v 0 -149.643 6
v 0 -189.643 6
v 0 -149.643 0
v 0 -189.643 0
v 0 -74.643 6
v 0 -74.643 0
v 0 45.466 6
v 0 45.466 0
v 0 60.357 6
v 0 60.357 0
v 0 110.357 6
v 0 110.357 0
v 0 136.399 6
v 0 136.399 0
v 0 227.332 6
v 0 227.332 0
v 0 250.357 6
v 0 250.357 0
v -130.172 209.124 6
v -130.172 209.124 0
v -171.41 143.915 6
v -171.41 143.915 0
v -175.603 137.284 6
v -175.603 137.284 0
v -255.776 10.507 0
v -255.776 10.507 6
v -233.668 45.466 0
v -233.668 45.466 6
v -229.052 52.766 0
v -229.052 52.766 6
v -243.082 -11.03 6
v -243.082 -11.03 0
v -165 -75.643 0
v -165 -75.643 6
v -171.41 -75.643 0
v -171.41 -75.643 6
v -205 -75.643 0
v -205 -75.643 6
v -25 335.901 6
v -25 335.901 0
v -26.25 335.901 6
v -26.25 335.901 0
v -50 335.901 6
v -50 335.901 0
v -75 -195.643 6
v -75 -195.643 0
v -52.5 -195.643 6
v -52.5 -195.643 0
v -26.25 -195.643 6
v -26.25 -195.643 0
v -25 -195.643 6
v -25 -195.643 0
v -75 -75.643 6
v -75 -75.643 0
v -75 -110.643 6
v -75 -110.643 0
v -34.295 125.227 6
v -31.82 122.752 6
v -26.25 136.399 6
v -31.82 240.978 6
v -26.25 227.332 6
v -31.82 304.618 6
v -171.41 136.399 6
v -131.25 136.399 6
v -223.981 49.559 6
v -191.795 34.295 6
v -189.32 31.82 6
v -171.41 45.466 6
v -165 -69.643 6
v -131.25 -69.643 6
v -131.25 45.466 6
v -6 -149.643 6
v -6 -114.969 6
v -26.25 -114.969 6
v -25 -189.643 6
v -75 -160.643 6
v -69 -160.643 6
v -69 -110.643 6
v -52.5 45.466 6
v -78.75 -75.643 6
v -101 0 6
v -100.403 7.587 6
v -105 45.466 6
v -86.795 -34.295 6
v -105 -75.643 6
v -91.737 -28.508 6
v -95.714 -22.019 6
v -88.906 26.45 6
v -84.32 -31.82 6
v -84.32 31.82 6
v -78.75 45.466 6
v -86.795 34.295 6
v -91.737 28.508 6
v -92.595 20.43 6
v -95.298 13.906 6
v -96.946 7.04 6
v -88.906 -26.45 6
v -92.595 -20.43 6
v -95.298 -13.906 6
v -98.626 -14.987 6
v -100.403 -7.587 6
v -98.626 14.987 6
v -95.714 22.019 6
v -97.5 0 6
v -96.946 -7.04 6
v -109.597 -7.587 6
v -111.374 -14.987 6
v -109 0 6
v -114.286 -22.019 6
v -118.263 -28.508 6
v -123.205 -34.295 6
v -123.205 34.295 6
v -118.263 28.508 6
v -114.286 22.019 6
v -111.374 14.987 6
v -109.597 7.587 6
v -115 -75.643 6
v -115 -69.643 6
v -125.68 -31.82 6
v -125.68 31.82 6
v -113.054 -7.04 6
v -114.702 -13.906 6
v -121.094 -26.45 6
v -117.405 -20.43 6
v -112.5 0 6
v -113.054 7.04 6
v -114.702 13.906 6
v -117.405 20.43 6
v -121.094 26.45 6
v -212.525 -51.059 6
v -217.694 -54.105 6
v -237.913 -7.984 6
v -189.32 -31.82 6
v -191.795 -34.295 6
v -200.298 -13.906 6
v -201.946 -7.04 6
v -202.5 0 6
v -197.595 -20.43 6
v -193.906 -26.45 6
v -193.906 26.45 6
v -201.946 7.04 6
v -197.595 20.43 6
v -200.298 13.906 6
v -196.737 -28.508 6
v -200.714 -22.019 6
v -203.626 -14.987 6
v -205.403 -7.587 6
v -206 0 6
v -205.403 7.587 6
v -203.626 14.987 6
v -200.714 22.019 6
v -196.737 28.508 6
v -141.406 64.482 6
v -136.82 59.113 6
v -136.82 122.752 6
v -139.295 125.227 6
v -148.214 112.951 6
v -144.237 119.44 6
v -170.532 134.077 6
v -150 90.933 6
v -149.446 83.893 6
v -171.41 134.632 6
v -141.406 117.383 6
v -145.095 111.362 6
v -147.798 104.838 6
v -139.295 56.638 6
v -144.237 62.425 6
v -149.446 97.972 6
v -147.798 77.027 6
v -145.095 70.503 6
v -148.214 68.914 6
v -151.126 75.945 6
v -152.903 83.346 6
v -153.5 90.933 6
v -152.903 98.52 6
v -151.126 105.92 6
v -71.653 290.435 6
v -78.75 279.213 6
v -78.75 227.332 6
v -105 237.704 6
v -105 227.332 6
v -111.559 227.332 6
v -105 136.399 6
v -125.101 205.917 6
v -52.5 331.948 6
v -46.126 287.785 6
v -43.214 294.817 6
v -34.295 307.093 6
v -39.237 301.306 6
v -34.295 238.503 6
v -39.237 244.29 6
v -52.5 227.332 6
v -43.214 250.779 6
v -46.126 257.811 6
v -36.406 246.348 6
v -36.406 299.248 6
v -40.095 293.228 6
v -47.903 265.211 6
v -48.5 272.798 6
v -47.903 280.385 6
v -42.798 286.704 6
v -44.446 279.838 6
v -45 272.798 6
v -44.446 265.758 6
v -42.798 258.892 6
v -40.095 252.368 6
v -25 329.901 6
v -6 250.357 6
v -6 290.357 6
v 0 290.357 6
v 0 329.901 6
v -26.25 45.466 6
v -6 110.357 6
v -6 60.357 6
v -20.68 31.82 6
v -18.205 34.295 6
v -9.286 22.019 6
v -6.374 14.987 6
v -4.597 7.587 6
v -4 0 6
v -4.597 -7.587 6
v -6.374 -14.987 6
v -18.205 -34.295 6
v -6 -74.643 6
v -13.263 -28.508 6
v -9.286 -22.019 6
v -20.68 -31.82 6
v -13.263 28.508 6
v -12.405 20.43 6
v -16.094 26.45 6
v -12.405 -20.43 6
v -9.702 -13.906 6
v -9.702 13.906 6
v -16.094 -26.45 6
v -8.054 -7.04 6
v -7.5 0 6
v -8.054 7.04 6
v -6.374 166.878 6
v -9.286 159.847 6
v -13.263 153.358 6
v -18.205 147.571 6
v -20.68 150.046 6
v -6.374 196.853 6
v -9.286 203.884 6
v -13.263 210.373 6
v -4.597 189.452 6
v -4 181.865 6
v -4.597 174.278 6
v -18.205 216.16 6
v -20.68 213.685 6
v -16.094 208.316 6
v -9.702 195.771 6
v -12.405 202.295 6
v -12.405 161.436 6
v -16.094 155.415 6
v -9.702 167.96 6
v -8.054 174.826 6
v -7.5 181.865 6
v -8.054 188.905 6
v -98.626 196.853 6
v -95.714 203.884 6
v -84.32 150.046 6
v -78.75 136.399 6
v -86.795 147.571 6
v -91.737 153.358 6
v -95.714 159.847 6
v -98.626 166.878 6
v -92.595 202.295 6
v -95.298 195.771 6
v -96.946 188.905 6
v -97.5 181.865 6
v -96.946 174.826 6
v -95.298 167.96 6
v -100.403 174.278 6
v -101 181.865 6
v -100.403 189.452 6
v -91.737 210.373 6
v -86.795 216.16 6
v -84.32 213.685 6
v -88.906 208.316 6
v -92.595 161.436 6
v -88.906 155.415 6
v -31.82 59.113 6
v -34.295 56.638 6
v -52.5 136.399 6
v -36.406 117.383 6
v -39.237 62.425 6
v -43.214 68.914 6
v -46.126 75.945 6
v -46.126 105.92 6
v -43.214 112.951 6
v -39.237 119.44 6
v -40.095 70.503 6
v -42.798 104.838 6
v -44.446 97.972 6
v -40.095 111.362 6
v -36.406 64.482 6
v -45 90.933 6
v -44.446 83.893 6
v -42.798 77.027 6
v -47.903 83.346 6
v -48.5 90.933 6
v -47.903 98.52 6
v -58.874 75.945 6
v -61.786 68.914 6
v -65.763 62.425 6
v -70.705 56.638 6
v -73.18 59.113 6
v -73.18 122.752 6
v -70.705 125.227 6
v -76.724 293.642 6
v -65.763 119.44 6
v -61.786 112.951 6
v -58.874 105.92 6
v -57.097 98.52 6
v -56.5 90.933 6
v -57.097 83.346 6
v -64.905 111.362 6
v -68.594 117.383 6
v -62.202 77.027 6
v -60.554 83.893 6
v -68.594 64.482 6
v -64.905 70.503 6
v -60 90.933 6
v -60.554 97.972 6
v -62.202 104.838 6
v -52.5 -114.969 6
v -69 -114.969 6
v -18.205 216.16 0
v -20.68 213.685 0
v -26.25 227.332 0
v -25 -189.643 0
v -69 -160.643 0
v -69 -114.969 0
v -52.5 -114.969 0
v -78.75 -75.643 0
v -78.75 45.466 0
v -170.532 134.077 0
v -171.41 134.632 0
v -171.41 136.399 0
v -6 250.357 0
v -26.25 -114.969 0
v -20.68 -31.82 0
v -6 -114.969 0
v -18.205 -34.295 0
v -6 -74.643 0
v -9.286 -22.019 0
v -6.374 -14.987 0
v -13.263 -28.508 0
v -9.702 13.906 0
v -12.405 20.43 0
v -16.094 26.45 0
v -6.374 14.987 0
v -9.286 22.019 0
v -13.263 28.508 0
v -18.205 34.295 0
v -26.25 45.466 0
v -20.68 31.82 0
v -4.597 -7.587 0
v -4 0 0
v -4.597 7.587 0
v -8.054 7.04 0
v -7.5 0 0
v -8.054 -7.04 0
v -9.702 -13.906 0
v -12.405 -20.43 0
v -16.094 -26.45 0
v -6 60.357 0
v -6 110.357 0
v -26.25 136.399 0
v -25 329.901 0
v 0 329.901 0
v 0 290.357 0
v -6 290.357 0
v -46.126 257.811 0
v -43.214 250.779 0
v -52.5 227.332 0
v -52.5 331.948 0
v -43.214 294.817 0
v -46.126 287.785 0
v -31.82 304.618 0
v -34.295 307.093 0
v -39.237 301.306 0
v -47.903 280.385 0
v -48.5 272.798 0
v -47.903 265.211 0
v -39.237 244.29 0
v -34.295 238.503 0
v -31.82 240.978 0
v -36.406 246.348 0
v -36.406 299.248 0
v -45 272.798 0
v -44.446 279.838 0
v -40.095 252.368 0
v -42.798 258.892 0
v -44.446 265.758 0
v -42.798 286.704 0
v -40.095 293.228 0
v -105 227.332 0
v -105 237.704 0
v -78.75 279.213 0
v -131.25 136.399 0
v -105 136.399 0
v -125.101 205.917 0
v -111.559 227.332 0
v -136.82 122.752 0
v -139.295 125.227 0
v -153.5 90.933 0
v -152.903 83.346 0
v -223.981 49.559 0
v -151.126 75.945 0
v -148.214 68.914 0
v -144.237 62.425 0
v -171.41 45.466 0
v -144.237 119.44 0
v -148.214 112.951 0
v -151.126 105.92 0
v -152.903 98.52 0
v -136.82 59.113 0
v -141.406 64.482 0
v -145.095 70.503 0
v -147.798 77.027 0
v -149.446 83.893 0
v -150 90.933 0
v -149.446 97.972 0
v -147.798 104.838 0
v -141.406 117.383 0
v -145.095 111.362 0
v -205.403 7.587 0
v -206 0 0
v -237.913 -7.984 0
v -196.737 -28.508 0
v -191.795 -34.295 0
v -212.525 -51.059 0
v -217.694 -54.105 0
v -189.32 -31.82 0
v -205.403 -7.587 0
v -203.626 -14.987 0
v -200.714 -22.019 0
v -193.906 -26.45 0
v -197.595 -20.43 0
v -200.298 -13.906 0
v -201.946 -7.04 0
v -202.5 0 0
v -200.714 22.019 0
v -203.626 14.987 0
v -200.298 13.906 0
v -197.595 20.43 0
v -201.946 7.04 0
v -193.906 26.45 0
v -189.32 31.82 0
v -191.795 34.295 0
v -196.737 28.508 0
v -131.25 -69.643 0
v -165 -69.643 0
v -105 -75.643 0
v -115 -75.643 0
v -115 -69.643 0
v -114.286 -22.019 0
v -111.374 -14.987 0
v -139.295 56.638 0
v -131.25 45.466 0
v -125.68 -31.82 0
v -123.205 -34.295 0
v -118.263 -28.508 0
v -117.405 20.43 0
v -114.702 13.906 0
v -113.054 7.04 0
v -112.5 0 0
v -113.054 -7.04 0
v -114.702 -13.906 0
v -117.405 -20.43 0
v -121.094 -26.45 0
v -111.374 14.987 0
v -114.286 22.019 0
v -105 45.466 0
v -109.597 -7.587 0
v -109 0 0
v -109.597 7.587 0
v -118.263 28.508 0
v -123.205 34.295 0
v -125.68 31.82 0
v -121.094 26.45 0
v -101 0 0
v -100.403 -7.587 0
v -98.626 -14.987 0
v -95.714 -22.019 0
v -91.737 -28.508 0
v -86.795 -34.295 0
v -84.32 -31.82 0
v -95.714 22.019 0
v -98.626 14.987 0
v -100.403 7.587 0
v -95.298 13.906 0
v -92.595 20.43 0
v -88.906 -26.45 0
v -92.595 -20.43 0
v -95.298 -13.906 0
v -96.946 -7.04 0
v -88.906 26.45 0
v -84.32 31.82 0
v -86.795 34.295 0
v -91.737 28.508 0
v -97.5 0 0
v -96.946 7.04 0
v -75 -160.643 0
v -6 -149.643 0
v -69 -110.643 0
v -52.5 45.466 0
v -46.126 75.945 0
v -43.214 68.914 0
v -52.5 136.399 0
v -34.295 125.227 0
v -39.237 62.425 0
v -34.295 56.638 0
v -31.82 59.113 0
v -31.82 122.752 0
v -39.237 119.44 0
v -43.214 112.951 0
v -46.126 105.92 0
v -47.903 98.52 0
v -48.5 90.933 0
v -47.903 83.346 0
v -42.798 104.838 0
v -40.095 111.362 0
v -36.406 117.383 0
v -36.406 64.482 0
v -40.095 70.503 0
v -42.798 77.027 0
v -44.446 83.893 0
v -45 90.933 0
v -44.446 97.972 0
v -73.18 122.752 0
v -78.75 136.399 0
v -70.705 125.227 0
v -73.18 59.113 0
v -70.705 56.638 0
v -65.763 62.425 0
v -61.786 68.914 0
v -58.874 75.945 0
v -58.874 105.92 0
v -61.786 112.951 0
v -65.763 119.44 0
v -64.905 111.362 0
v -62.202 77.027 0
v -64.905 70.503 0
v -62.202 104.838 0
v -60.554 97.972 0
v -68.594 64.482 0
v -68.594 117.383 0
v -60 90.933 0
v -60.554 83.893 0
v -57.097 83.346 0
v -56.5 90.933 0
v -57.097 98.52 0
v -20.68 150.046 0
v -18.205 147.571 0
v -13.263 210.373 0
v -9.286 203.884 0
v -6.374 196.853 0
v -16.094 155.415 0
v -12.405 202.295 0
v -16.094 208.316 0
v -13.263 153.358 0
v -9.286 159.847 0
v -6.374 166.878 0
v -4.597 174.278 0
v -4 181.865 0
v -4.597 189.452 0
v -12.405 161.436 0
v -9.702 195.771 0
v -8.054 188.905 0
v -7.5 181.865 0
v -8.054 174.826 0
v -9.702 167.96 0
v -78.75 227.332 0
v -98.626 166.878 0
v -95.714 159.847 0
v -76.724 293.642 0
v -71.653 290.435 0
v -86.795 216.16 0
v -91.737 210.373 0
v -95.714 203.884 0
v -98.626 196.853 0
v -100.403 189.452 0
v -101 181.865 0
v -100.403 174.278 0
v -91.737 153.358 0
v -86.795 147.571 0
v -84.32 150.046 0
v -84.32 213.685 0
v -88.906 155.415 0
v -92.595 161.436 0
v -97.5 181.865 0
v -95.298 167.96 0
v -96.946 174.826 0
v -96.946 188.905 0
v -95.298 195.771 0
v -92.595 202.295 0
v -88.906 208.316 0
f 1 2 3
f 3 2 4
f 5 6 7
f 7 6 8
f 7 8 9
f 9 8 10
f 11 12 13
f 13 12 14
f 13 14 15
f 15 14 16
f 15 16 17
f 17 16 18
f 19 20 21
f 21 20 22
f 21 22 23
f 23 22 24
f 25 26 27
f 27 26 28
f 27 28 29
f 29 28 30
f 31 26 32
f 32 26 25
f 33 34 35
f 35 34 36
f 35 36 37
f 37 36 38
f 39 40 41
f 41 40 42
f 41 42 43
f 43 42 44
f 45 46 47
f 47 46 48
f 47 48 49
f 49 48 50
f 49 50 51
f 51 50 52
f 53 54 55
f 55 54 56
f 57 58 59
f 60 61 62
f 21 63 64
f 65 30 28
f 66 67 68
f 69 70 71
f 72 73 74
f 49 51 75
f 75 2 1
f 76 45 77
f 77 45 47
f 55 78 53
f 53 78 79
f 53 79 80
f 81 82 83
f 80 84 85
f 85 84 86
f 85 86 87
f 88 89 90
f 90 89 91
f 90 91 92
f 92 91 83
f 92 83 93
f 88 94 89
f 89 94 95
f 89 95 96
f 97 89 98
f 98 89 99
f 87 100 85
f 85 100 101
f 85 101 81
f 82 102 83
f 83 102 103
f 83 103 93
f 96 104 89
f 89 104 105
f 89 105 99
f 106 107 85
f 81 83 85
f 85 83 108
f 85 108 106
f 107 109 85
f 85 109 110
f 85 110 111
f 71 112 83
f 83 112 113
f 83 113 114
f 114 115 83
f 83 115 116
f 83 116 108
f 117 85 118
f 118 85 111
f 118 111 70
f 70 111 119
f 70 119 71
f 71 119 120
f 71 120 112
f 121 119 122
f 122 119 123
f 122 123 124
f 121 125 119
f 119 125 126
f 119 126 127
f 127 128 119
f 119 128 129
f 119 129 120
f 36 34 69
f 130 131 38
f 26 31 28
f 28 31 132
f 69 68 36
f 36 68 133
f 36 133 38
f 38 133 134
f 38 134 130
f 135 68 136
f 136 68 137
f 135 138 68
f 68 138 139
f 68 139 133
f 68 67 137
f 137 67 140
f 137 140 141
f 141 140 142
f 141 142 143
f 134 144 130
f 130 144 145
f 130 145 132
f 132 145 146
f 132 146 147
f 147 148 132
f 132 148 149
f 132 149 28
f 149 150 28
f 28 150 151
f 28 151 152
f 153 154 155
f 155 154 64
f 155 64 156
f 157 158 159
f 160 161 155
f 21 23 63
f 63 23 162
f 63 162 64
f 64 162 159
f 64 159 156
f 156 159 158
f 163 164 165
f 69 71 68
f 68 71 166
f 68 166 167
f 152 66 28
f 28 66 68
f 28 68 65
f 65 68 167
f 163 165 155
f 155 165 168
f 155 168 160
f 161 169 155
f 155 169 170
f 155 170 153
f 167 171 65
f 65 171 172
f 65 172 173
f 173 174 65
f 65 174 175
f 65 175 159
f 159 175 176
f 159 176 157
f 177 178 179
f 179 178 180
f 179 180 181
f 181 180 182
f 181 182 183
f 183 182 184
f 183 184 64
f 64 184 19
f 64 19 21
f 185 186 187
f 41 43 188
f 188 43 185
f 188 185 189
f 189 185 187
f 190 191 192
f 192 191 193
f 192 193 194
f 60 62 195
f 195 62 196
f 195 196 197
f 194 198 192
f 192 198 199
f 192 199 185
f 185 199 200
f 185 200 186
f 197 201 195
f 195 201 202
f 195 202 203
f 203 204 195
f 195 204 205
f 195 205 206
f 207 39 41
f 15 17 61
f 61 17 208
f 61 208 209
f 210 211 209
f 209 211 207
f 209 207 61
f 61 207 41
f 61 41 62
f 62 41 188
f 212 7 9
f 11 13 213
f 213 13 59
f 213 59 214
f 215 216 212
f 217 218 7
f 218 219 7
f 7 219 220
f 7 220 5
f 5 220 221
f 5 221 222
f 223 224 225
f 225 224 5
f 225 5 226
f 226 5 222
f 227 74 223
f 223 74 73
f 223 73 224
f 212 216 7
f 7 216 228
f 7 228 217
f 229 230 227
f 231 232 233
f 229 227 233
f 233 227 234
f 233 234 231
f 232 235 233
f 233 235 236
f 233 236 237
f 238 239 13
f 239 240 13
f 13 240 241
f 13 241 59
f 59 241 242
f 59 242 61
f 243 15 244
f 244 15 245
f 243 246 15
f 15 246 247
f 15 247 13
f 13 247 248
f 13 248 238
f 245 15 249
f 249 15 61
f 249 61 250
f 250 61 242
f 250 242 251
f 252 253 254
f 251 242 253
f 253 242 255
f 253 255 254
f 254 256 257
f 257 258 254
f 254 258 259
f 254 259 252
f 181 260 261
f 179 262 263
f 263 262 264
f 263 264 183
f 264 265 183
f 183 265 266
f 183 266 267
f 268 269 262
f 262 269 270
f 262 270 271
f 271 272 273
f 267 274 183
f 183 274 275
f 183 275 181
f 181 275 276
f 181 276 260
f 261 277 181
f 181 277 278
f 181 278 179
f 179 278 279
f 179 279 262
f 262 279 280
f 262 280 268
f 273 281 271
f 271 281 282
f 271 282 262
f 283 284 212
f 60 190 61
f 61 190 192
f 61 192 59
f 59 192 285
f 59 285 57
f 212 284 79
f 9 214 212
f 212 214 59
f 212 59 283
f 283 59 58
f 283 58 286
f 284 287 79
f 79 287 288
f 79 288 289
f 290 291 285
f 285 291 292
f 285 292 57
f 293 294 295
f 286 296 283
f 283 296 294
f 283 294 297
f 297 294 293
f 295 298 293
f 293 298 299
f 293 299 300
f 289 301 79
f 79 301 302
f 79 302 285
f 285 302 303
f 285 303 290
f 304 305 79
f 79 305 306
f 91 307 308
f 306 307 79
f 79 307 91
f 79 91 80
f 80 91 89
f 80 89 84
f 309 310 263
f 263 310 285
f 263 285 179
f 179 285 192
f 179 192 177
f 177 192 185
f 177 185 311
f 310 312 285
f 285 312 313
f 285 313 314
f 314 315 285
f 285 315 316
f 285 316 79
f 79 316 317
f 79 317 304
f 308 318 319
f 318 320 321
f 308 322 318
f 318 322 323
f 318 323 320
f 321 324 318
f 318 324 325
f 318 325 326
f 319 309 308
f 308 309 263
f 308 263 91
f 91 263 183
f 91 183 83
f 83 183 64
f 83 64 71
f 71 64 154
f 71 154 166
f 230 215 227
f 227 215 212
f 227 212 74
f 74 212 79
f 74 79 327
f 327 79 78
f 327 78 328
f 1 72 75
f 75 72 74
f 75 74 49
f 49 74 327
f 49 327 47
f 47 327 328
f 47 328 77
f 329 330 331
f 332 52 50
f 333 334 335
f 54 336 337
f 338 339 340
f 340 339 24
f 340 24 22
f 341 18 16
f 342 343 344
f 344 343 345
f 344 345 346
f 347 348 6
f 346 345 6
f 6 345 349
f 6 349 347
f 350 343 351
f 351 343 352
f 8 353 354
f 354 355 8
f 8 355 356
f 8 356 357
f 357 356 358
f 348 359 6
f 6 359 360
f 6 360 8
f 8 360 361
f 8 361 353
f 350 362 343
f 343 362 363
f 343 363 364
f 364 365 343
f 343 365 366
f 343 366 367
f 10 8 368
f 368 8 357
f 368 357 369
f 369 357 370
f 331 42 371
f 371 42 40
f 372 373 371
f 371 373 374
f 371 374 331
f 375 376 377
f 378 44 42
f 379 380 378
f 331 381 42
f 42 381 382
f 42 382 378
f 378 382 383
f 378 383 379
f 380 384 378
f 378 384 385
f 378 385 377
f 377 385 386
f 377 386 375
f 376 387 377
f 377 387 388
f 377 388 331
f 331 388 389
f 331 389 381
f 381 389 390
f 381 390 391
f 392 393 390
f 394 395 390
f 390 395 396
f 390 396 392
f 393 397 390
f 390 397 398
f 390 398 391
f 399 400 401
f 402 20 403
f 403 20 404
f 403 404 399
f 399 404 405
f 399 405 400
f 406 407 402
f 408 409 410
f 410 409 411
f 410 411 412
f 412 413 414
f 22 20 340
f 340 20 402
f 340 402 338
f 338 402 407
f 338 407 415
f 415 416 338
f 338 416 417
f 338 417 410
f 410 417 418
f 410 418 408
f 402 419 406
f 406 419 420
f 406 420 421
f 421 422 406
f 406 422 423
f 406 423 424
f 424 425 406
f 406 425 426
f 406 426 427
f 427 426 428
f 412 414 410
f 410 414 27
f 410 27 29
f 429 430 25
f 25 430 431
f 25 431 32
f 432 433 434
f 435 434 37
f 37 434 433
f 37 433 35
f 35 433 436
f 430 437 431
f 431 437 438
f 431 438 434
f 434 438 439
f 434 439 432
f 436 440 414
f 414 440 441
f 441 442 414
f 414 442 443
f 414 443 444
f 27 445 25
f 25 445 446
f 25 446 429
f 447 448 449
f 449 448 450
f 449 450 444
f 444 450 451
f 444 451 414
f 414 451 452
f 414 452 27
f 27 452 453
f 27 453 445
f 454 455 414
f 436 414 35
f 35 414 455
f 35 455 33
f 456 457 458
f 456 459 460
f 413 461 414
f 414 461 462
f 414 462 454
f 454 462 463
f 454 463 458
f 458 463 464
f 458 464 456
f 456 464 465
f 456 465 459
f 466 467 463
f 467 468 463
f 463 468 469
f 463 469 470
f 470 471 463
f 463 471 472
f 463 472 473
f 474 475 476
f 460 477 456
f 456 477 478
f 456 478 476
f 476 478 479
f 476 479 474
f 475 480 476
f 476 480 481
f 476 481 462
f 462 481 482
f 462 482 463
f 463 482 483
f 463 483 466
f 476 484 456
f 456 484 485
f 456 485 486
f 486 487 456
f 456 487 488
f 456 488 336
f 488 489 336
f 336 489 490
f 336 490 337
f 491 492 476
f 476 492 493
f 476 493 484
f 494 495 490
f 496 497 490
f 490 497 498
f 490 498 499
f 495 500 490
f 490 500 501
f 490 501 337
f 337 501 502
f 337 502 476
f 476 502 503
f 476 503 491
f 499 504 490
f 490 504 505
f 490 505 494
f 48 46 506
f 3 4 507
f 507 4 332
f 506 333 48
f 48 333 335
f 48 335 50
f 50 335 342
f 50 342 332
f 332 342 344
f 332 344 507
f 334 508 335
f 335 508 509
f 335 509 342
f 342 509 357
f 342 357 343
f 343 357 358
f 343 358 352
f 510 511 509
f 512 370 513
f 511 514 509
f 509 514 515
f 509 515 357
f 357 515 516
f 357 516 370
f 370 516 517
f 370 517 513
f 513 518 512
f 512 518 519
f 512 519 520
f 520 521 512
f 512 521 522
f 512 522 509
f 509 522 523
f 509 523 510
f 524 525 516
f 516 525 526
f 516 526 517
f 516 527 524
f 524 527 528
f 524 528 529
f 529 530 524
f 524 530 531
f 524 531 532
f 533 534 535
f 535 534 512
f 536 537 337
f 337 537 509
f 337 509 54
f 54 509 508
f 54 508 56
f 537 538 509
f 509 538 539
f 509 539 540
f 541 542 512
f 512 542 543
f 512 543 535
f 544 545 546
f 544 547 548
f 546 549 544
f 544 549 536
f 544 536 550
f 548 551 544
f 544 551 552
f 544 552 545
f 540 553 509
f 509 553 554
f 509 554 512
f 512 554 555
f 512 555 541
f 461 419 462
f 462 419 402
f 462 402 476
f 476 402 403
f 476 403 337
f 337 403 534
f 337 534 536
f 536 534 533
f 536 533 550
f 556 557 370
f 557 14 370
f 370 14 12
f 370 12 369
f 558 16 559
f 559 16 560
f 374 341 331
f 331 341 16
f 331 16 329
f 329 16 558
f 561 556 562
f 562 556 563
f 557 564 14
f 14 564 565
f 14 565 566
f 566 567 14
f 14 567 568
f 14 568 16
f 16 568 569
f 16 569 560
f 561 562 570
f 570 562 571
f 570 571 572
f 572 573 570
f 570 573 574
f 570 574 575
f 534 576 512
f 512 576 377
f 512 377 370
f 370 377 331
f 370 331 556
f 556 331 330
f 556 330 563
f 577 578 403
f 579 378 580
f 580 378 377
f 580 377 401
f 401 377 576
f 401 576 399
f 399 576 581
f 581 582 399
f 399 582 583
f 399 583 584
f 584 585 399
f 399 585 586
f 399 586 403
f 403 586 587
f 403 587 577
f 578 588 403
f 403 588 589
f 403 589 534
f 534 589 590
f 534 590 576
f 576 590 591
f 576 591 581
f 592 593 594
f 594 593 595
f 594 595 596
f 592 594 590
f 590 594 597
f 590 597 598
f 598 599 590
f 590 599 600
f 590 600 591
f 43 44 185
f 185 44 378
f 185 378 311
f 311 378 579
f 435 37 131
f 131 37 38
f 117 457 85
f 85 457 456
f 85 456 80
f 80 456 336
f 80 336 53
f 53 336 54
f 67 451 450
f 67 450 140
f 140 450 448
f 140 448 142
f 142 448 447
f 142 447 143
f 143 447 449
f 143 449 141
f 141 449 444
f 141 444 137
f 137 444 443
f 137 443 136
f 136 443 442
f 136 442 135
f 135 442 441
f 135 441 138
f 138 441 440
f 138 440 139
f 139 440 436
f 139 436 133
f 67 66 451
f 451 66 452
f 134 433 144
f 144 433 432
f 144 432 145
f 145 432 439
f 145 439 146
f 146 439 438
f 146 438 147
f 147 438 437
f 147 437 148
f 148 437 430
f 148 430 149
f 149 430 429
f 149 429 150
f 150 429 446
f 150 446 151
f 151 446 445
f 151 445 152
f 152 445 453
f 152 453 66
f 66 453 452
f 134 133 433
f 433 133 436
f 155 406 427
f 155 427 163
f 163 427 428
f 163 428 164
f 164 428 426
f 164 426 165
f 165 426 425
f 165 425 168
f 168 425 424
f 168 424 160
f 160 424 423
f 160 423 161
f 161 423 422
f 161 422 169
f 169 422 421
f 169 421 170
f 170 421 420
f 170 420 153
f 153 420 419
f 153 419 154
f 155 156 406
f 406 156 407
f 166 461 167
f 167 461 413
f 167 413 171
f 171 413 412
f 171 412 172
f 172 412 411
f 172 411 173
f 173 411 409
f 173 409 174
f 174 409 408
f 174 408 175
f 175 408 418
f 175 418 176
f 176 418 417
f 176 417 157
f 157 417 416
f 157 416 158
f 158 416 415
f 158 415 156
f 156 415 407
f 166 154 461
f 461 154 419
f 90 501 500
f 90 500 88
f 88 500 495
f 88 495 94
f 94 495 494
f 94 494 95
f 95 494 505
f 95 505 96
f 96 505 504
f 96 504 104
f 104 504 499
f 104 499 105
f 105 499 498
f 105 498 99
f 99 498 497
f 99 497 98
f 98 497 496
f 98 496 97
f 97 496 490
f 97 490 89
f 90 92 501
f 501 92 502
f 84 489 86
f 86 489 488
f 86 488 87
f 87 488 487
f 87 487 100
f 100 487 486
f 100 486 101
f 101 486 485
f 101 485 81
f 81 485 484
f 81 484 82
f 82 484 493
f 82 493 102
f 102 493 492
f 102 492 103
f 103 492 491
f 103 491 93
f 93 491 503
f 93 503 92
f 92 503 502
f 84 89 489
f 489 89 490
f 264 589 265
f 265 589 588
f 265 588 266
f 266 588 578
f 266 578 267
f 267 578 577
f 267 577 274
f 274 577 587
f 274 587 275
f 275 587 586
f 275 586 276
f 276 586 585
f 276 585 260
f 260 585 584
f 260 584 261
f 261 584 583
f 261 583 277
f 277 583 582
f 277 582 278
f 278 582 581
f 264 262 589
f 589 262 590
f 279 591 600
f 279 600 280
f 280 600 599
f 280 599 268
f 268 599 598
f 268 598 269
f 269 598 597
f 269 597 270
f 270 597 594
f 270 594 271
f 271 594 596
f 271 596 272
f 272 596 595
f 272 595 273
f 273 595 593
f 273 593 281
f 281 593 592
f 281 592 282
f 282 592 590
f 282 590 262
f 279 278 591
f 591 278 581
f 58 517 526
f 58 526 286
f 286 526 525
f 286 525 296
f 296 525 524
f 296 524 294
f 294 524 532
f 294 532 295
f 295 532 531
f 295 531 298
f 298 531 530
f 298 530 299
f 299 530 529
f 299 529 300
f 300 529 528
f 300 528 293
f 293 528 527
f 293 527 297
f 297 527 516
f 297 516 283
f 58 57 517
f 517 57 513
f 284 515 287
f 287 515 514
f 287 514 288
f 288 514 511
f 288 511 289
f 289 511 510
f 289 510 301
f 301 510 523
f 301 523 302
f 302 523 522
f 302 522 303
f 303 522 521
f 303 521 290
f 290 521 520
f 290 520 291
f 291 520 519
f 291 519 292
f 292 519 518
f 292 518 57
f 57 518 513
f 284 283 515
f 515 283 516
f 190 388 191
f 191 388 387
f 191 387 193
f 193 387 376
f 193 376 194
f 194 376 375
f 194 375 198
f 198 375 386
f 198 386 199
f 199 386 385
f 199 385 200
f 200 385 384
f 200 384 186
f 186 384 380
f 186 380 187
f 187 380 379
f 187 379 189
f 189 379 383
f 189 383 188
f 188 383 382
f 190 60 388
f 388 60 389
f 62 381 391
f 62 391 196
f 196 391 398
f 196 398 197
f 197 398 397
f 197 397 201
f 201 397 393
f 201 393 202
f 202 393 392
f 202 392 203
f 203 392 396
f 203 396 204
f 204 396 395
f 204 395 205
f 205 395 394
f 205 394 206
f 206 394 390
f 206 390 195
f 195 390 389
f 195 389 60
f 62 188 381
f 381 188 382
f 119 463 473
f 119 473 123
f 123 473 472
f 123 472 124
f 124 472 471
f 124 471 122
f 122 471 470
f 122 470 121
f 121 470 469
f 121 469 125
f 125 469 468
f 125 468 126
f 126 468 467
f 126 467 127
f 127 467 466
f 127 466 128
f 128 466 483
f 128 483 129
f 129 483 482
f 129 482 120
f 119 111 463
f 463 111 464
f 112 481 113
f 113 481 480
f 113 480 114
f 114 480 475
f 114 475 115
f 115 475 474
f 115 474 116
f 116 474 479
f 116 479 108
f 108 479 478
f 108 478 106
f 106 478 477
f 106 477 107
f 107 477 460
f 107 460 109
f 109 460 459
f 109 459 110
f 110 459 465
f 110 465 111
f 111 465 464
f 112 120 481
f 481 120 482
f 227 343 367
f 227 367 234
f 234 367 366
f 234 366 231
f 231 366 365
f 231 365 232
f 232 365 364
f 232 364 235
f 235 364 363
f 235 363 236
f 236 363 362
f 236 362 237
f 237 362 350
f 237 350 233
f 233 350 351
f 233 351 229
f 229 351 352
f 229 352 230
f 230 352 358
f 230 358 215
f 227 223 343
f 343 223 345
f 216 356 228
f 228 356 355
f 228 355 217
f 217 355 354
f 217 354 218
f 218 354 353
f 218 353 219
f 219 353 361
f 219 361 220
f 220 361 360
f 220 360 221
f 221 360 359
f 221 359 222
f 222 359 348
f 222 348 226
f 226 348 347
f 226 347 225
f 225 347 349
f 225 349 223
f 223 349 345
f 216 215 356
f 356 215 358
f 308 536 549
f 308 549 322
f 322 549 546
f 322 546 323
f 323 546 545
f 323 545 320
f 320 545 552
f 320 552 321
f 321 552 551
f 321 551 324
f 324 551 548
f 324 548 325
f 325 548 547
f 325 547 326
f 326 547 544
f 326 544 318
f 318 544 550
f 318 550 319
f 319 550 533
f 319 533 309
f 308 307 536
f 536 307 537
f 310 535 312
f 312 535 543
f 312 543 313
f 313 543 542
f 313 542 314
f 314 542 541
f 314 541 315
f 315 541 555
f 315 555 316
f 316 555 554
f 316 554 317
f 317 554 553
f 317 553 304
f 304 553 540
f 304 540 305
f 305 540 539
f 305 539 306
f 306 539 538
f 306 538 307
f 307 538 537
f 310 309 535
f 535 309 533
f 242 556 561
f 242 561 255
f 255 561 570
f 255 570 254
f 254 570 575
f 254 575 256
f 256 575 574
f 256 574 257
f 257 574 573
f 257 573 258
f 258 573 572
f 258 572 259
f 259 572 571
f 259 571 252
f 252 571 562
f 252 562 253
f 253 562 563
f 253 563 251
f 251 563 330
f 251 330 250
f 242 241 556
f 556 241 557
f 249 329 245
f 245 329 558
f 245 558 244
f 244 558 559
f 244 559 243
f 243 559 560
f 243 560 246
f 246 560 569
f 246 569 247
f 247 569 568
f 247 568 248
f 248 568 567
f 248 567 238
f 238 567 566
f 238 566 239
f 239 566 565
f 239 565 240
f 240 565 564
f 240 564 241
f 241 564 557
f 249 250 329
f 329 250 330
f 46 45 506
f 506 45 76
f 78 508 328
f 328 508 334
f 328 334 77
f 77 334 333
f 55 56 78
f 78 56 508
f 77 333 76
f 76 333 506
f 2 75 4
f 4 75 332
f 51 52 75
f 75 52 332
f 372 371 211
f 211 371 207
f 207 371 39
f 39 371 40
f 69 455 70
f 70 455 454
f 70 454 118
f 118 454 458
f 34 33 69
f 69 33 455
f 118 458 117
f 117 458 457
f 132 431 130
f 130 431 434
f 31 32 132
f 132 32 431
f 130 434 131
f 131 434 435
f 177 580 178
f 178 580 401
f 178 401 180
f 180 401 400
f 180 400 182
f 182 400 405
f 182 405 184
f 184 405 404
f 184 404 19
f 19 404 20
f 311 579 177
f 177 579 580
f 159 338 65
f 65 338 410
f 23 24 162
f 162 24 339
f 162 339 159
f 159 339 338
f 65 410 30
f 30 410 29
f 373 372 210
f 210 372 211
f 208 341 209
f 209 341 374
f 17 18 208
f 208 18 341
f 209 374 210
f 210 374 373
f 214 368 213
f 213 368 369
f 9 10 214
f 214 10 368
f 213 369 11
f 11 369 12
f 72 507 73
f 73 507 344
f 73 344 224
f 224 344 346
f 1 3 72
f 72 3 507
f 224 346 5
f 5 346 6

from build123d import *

# Parameters (mm, degrees)
BOSS_EXTRU_1_DEPTH      = 6
ESQUISSE2_W             = 150
ESQUISSE2_H             = 120
BOSS_EXTRU_2_DEPTH      = 6
ESQUISSE3_W             = 6
ESQUISSE3_H             = 50
ESQUISSE3_W_2           = 50
ESQUISSE3_H_2           = 6
ENL_V_MAT_EXTRU_1_DEPTH = 10
ESQUISSE4_W             = 50
ESQUISSE4_H             = 6
ENL_V_MAT_EXTRU_2_DEPTH = 10
ESQUISSE5_W             = 263.306064462
ESQUISSE5_H             = 531.54399855
ENL_V_MAT_EXTRU_5_DEPTH = 10
ESQUISSE9_W             = 6
ESQUISSE9_H             = 75
ESQUISSE9_H_2           = 50
ESQUISSE9_H_3           = 40
ENL_V_MAT_EXTRU_6_DEPTH = 10


with BuildPart() as part:
    # Esquisse1 → Boss.-Extru.1 (new body)
    with BuildSketch(Plane.XY):
        Polygon((-50, 335.901139534), (50, 335.901139534), (255.775862069, 10.507079064), (205, -75.642859016), (-205, -75.642859016), (-255.775862069, 10.507079064), align=None)
        with BuildLine():
            Line((-189.319805153, 31.819805153), (-191.794678888, 34.294678888))
            ThreePointArc((-191.794678888, 34.294678888), (-206, 0), (-191.794678888, -34.294678888))
            Line((-191.794678888, -34.294678888), (-189.319805153, -31.819805153))
            ThreePointArc((-189.319805153, -31.819805153), (-202.5, 0), (-189.319805153, 31.819805153))
        make_face(mode=Mode.SUBTRACT)
        with BuildLine():
            Line((-125.680194847, 31.819805153), (-123.205321112, 34.294678888))
            ThreePointArc((-123.205321112, 34.294678888), (-109, 0), (-123.205321112, -34.294678888))
            Line((-123.205321112, -34.294678888), (-125.680194847, -31.819805153))
            ThreePointArc((-125.680194847, -31.819805153), (-112.5, 0), (-125.680194847, 31.819805153))
        make_face(mode=Mode.SUBTRACT)
        with BuildLine():
            Line((-84.319805153, -31.819805153), (-86.794678888, -34.294678888))
            ThreePointArc((-86.794678888, -34.294678888), (-101, 0), (-86.794678888, 34.294678888))
            Line((-86.794678888, 34.294678888), (-84.319805153, 31.819805153))
            ThreePointArc((-84.319805153, 31.819805153), (-97.5, 0), (-84.319805153, -31.819805153))
        make_face(mode=Mode.SUBTRACT)
        with BuildLine():
            Line((-20.680194847, 31.819805153), (-18.205321112, 34.294678888))
            ThreePointArc((-18.205321112, 34.294678888), (-4, 0), (-18.205321112, -34.294678888))
            Line((-18.205321112, -34.294678888), (-20.680194847, -31.819805153))
            ThreePointArc((-20.680194847, -31.819805153), (-7.5, 0), (-20.680194847, 31.819805153))
        make_face(mode=Mode.SUBTRACT)
        with BuildLine():
            Line((20.680194847, -31.819805153), (18.205321112, -34.294678888))
            ThreePointArc((18.205321112, -34.294678888), (4, 0), (18.205321112, 34.294678888))
            Line((18.205321112, 34.294678888), (20.680194847, 31.819805153))
            ThreePointArc((20.680194847, 31.819805153), (7.5, 0), (20.680194847, -31.819805153))
        make_face(mode=Mode.SUBTRACT)
        with BuildLine():
            Line((84.319805153, 31.819805153), (86.794678888, 34.294678888))
            ThreePointArc((86.794678888, 34.294678888), (101, 0), (86.794678888, -34.294678888))
            Line((86.794678888, -34.294678888), (84.319805153, -31.819805153))
            ThreePointArc((84.319805153, -31.819805153), (97.5, 0), (84.319805153, 31.819805153))
        make_face(mode=Mode.SUBTRACT)
        with BuildLine():
            Line((125.680194847, -31.819805153), (123.205321112, -34.294678888))
            ThreePointArc((123.205321112, -34.294678888), (109, 0), (123.205321112, 34.294678888))
            Line((123.205321112, 34.294678888), (125.680194847, 31.819805153))
            ThreePointArc((125.680194847, 31.819805153), (112.5, 0), (125.680194847, -31.819805153))
        make_face(mode=Mode.SUBTRACT)
        with BuildLine():
            Line((189.319805153, 31.819805153), (191.794678888, 34.294678888))
            ThreePointArc((191.794678888, 34.294678888), (206, 0), (191.794678888, -34.294678888))
            Line((191.794678888, -34.294678888), (189.319805153, -31.819805153))
            ThreePointArc((189.319805153, -31.819805153), (202.5, 0), (189.319805153, 31.819805153))
        make_face(mode=Mode.SUBTRACT)
        with BuildLine():
            Line((-139.294678888, 56.63798851), (-136.819805153, 59.112862244))
            ThreePointArc((-136.819805153, 59.112862244), (-150, 90.932667397), (-136.819805153, 122.752472551))
            Line((-136.819805153, 122.752472551), (-139.294678888, 125.227346285))
            ThreePointArc((-139.294678888, 125.227346285), (-153.5, 90.932667397), (-139.294678888, 56.63798851))
        make_face(mode=Mode.SUBTRACT)
        with BuildLine():
            Line((-70.705321112, 56.63798851), (-73.180194847, 59.112862244))
            ThreePointArc((-73.180194847, 59.112862244), (-60, 90.932667397), (-73.180194847, 122.752472551))
            Line((-73.180194847, 122.752472551), (-70.705321112, 125.227346285))
            ThreePointArc((-70.705321112, 125.227346285), (-56.5, 90.932667397), (-70.705321112, 56.63798851))
        make_face(mode=Mode.SUBTRACT)
        with BuildLine():
            Line((-31.819805153, 122.752472551), (-34.294678888, 125.227346285))
            ThreePointArc((-34.294678888, 125.227346285), (-48.5, 90.932667397), (-34.294678888, 56.63798851))
            Line((-34.294678888, 56.63798851), (-31.819805153, 59.112862244))
            ThreePointArc((-31.819805153, 59.112862244), (-45, 90.932667397), (-31.819805153, 122.752472551))
        make_face(mode=Mode.SUBTRACT)
        with BuildLine():
            Line((34.294678888, 56.63798851), (31.819805153, 59.112862244))
            ThreePointArc((31.819805153, 59.112862244), (45, 90.932667397), (31.819805153, 122.752472551))
            Line((31.819805153, 122.752472551), (34.294678888, 125.227346285))
            ThreePointArc((34.294678888, 125.227346285), (48.5, 90.932667397), (34.294678888, 56.63798851))
        make_face(mode=Mode.SUBTRACT)
        with BuildLine():
            Line((73.180194847, 122.752472551), (70.705321112, 125.227346285))
            ThreePointArc((70.705321112, 125.227346285), (56.5, 90.932667397), (70.705321112, 56.63798851))
            Line((70.705321112, 56.63798851), (73.180194847, 59.112862244))
            ThreePointArc((73.180194847, 59.112862244), (60, 90.932667397), (73.180194847, 122.752472551))
        make_face(mode=Mode.SUBTRACT)
        with BuildLine():
            Line((139.294678888, 56.63798851), (136.819805153, 59.112862244))
            ThreePointArc((136.819805153, 59.112862244), (150, 90.932667397), (136.819805153, 122.752472551))
            Line((136.819805153, 122.752472551), (139.294678888, 125.227346285))
            ThreePointArc((139.294678888, 125.227346285), (153.5, 90.932667397), (139.294678888, 56.63798851))
        make_face(mode=Mode.SUBTRACT)
        with BuildLine():
            Line((-84.319805153, 213.685139948), (-86.794678888, 216.160013682))
            ThreePointArc((-86.794678888, 216.160013682), (-101, 181.865334795), (-86.794678888, 147.570655907))
            Line((-86.794678888, 147.570655907), (-84.319805153, 150.045529641))
            ThreePointArc((-84.319805153, 150.045529641), (-97.5, 181.865334795), (-84.319805153, 213.685139948))
        make_face(mode=Mode.SUBTRACT)
        with BuildLine():
            Line((-20.680194847, 213.685139948), (-18.205321112, 216.160013682))
            ThreePointArc((-18.205321112, 216.160013682), (-4, 181.865334795), (-18.205321112, 147.570655907))
            Line((-18.205321112, 147.570655907), (-20.680194847, 150.045529641))
            ThreePointArc((-20.680194847, 150.045529641), (-7.5, 181.865334795), (-20.680194847, 213.685139948))
        make_face(mode=Mode.SUBTRACT)
        with BuildLine():
            Line((20.680194847, 150.045529641), (18.205321112, 147.570655907))
            ThreePointArc((18.205321112, 147.570655907), (4, 181.865334795), (18.205321112, 216.160013682))
            Line((18.205321112, 216.160013682), (20.680194847, 213.685139948))
            ThreePointArc((20.680194847, 213.685139948), (7.5, 181.865334795), (20.680194847, 150.045529641))
        make_face(mode=Mode.SUBTRACT)
        with BuildLine():
            Line((84.319805153, 150.045529641), (86.794678888, 147.570655907))
            ThreePointArc((86.794678888, 147.570655907), (101, 181.865334795), (86.794678888, 216.160013682))
            Line((86.794678888, 216.160013682), (84.319805153, 213.685139948))
            ThreePointArc((84.319805153, 213.685139948), (97.5, 181.865334795), (84.319805153, 150.045529641))
        make_face(mode=Mode.SUBTRACT)
        with BuildLine():
            Line((-31.819805153, 304.617807345), (-34.294678888, 307.09268108))
            ThreePointArc((-34.294678888, 307.09268108), (-48.5, 272.798002192), (-34.294678888, 238.503323305))
            Line((-34.294678888, 238.503323305), (-31.819805153, 240.978197039))
            ThreePointArc((-31.819805153, 240.978197039), (-45, 272.798002192), (-31.819805153, 304.617807345))
        make_face(mode=Mode.SUBTRACT)
        with BuildLine():
            Line((31.819805153, 304.617807345), (34.294678888, 307.09268108))
            ThreePointArc((34.294678888, 307.09268108), (48.5, 272.798002192), (34.294678888, 238.503323305))
            Line((34.294678888, 238.503323305), (31.819805153, 240.978197039))
            ThreePointArc((31.819805153, 240.978197039), (45, 272.798002192), (31.819805153, 304.617807345))
        make_face(mode=Mode.SUBTRACT)
    extrude(amount=BOSS_EXTRU_1_DEPTH)

    # Esquisse2 → Boss.-Extru.2 (add)
    with BuildSketch(Plane.XY.offset(6)):
        with Locations((0, -135.642859016)):
            Rectangle(ESQUISSE2_W, ESQUISSE2_H)
    extrude(amount=-BOSS_EXTRU_2_DEPTH)

    # Esquisse3 → Enlèv. mat.-Extru.1 (cut)
    with BuildSketch(Plane.XY.offset(6)):
        with Locations((-72, -135.642859016)):
            Rectangle(ESQUISSE3_W, ESQUISSE3_H)
        with Locations((0, -192.642859016)):
            Rectangle(ESQUISSE3_W_2, ESQUISSE3_H_2)
        with Locations((72, -135.642859016)):
            Rectangle(ESQUISSE3_W, ESQUISSE3_H)
    extrude(amount=-ENL_V_MAT_EXTRU_1_DEPTH, mode=Mode.SUBTRACT)

    # Esquisse4 → Enlèv. mat.-Extru.2 (cut)
    with BuildSketch(Plane.XY.offset(6)):
        with Locations((-140, -72.642859016)):
            Rectangle(ESQUISSE4_W, ESQUISSE4_H)
        Polygon((-217.693965517, -54.105374496), (-212.524969232, -51.058822772), (-237.912900267, -7.983853732), (-243.081896552, -11.030405456), align=None)
        Polygon((-229.051724138, 52.766047956), (-223.980647871, 49.559151404), (-170.532372009, 134.077089189), (-175.603448276, 137.283985741), align=None)
        Polygon((-71.653061664, 290.43527409), (-76.724137931, 293.642170642), (-130.172413793, 209.124232857), (-125.101337526, 205.917336306), align=None)
        with Locations((0, 332.901139534)):
            Rectangle(ESQUISSE4_W, ESQUISSE4_H)
        with Locations((140, -72.642859016)):
            Rectangle(ESQUISSE4_W, ESQUISSE4_H)
        Polygon((237.912900267, -7.983853732), (243.081896552, -11.030405456), (217.693965517, -54.105374496), (212.524969232, -51.058822772), align=None)
        Polygon((170.532372009, 134.077089189), (175.603448276, 137.283985741), (229.051724138, 52.766047956), (223.980647871, 49.559151404), align=None)
        Polygon((125.101337526, 205.917336306), (130.172413793, 209.124232857), (76.724137931, 293.642170642), (71.653061664, 290.43527409), align=None)
    extrude(amount=-ENL_V_MAT_EXTRU_2_DEPTH, mode=Mode.SUBTRACT)

    # Esquisse5 → Enlèv. mat.-Extru.5 (cut)
    with BuildSketch(Plane.XY.offset(6)):
        with Locations((131.653032231, 70.129140259)):
            Rectangle(ESQUISSE5_W, ESQUISSE5_H)
    extrude(amount=-ENL_V_MAT_EXTRU_5_DEPTH, mode=Mode.SUBTRACT)

    # Esquisse9 → Enlèv. mat.-Extru.6 (cut)
    with BuildSketch(Plane.XY.offset(6)):
        with Locations((-3, -112.142859016)):
            Rectangle(ESQUISSE9_W, ESQUISSE9_H)
        with Locations((-3, 85.357140984)):
            Rectangle(ESQUISSE9_W, ESQUISSE9_H_2)
        with Locations((-3, 270.357140984)):
            Rectangle(ESQUISSE9_W, ESQUISSE9_H_3)
    extrude(amount=-ENL_V_MAT_EXTRU_6_DEPTH, mode=Mode.SUBTRACT)


solid = part.part
